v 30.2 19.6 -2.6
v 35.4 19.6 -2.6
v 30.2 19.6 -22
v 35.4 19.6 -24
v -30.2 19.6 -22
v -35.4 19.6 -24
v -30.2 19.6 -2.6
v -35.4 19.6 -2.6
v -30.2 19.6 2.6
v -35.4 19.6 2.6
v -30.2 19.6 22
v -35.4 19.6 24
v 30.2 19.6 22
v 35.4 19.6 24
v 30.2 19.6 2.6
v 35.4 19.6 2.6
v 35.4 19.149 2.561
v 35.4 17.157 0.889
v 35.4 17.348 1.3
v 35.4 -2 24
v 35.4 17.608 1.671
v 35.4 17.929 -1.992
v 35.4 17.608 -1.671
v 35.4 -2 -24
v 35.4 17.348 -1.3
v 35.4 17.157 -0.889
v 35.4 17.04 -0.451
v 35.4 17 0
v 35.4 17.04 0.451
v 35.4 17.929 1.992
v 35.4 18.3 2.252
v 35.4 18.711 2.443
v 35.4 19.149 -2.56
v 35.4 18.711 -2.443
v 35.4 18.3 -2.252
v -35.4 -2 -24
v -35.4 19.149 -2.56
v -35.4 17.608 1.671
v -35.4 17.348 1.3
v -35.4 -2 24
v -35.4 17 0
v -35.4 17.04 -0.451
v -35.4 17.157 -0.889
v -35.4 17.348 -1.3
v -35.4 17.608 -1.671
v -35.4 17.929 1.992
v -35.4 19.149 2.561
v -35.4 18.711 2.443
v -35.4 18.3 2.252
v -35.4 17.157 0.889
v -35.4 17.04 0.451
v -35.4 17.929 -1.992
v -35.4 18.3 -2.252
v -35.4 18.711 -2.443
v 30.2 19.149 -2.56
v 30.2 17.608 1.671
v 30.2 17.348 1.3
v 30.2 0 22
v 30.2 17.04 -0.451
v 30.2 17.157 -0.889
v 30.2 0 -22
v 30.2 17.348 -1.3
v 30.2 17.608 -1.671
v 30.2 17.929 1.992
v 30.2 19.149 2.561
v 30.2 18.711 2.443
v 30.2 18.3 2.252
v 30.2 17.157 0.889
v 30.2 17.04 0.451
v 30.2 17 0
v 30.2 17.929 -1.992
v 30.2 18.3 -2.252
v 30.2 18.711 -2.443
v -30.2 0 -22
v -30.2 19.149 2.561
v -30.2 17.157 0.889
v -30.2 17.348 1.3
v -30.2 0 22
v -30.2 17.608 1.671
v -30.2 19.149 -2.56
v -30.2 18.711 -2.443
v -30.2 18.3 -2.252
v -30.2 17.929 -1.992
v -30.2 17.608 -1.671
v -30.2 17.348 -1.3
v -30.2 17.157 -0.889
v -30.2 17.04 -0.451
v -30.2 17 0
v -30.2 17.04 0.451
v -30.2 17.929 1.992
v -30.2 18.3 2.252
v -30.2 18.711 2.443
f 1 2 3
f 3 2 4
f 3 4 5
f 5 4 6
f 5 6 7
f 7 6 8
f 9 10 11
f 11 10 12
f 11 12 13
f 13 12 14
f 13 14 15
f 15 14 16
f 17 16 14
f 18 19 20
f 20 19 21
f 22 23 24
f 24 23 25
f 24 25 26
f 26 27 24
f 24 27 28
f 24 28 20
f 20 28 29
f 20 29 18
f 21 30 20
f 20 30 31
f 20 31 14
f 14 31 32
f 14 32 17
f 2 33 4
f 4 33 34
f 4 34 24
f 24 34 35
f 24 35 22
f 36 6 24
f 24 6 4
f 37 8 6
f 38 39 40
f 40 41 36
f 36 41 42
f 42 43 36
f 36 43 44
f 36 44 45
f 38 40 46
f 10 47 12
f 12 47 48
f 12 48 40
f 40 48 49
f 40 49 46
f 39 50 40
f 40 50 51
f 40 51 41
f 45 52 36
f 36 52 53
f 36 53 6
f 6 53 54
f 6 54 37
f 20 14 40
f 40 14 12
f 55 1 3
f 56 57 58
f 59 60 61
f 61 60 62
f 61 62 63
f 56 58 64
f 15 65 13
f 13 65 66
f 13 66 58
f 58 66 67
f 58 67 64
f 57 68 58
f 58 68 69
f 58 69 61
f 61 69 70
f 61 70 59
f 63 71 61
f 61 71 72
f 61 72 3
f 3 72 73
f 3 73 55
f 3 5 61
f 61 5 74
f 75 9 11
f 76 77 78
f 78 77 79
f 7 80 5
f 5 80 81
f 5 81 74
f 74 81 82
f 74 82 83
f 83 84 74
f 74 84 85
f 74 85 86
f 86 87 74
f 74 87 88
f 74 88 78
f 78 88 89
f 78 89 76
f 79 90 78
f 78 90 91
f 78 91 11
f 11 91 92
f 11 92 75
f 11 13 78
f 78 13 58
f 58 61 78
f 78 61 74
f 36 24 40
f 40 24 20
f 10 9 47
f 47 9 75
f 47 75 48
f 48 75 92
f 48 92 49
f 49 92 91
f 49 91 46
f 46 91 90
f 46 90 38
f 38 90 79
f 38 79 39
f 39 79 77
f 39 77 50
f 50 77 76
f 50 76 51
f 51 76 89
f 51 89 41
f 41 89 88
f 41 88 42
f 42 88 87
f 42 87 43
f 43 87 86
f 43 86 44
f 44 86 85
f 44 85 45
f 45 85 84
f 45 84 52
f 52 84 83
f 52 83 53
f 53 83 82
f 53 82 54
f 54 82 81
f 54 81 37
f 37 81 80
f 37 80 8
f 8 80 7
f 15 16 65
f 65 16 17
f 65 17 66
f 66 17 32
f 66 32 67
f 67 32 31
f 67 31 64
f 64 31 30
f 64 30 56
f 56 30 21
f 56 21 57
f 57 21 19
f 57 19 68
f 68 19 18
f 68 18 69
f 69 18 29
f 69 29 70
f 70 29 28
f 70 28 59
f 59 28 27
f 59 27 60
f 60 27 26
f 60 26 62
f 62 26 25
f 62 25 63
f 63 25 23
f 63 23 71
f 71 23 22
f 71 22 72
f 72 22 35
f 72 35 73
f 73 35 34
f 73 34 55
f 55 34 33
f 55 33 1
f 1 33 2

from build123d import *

# Parameters (mm, degrees)
CROQUIS1_W              = 70.8
CROQUIS1_H              = 48
CROQUIS1_W_2            = 60.4
CROQUIS1_H_2            = 44
SALIENTE_EXTRUIR1_DEPTH = 19.6
CROQUIS1_2_W            = 70.8
CROQUIS1_2_H            = 48
CROQUIS1_2_W_2          = 60.4
CROQUIS1_2_H_2          = 44
SALIENTE_EXTRUIR2_DEPTH = 2
CORTAR_EXTRUIR1_REACH   = 79.284


with BuildPart() as part:
    # Croquis1 → Saliente-Extruir1 (new body)
    with BuildSketch(Plane(origin=(0, 0, 0), x_dir=(1, 0, 0), z_dir=(0, 1, 0))):
        Rectangle(CROQUIS1_W, CROQUIS1_H)
        Rectangle(CROQUIS1_W_2, CROQUIS1_H_2, mode=Mode.SUBTRACT)
    extrude(amount=SALIENTE_EXTRUIR1_DEPTH)

    # Croquis1<2> → Saliente-Extruir2 (add)
    # profile 1 of 2: a face of its own
    with BuildSketch(Plane(origin=(0, 0, 0), x_dir=(1, 0, 0), z_dir=(0, 1, 0))):
        Rectangle(CROQUIS1_2_W, CROQUIS1_2_H)
        Rectangle(CROQUIS1_2_W_2, CROQUIS1_2_H_2, mode=Mode.SUBTRACT)
    # profile 2 of 2: a face of its own
    with BuildSketch(Plane(origin=(0, 0, 0), x_dir=(1, 0, 0), z_dir=(0, 1, 0))):
        Rectangle(CROQUIS1_2_W_2, CROQUIS1_2_H_2)
    extrude(amount=-SALIENTE_EXTRUIR2_DEPTH)

    # Cortar-Extruir1: up to this face of the body (flat: up to its plane)
    cortar_extruir1_end = Plane(part.part.faces().sort_by_distance((-35.4, 8.8, 0))[0])
    # Croquis2 → Cortar-Extruir1 (cut, up to the picked face)
    with BuildSketch(Plane(origin=(35.4, 0, 0), x_dir=(0, 0, -1), z_dir=(1, 0, 0)), mode=Mode.PRIVATE) as cortar_extruir1_sk1:
        with BuildLine():
            Line((-2.6, 19.6), (2.6, 19.6))
            ThreePointArc((2.6, 19.6), (0, 17), (-2.6, 19.6))
        make_face()
    cortar_extruir1_tool1 = split(extrude(cortar_extruir1_sk1.sketch, amount=-CORTAR_EXTRUIR1_REACH, mode=Mode.PRIVATE), bisect_by=cortar_extruir1_end, keep=Keep.BOTH, mode=Mode.PRIVATE)
    add(cortar_extruir1_tool1.solids().sort_by(Axis((35.4, 18.496526, 0), (-1, 0, 0)))[0], mode=Mode.SUBTRACT)


solid = part.part
